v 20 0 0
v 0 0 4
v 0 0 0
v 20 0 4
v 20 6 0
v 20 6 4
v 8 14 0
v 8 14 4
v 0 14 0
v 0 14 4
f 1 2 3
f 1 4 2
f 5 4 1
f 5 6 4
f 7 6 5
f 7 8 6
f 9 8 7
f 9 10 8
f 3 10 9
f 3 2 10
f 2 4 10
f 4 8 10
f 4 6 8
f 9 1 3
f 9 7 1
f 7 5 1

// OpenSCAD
// One non-convex child: the hull is its convex closure.
linear_extrude(4) hull()
  polygon([[0,0],[20,0],[20,6],[8,6],[8,14],[0,14]]);
